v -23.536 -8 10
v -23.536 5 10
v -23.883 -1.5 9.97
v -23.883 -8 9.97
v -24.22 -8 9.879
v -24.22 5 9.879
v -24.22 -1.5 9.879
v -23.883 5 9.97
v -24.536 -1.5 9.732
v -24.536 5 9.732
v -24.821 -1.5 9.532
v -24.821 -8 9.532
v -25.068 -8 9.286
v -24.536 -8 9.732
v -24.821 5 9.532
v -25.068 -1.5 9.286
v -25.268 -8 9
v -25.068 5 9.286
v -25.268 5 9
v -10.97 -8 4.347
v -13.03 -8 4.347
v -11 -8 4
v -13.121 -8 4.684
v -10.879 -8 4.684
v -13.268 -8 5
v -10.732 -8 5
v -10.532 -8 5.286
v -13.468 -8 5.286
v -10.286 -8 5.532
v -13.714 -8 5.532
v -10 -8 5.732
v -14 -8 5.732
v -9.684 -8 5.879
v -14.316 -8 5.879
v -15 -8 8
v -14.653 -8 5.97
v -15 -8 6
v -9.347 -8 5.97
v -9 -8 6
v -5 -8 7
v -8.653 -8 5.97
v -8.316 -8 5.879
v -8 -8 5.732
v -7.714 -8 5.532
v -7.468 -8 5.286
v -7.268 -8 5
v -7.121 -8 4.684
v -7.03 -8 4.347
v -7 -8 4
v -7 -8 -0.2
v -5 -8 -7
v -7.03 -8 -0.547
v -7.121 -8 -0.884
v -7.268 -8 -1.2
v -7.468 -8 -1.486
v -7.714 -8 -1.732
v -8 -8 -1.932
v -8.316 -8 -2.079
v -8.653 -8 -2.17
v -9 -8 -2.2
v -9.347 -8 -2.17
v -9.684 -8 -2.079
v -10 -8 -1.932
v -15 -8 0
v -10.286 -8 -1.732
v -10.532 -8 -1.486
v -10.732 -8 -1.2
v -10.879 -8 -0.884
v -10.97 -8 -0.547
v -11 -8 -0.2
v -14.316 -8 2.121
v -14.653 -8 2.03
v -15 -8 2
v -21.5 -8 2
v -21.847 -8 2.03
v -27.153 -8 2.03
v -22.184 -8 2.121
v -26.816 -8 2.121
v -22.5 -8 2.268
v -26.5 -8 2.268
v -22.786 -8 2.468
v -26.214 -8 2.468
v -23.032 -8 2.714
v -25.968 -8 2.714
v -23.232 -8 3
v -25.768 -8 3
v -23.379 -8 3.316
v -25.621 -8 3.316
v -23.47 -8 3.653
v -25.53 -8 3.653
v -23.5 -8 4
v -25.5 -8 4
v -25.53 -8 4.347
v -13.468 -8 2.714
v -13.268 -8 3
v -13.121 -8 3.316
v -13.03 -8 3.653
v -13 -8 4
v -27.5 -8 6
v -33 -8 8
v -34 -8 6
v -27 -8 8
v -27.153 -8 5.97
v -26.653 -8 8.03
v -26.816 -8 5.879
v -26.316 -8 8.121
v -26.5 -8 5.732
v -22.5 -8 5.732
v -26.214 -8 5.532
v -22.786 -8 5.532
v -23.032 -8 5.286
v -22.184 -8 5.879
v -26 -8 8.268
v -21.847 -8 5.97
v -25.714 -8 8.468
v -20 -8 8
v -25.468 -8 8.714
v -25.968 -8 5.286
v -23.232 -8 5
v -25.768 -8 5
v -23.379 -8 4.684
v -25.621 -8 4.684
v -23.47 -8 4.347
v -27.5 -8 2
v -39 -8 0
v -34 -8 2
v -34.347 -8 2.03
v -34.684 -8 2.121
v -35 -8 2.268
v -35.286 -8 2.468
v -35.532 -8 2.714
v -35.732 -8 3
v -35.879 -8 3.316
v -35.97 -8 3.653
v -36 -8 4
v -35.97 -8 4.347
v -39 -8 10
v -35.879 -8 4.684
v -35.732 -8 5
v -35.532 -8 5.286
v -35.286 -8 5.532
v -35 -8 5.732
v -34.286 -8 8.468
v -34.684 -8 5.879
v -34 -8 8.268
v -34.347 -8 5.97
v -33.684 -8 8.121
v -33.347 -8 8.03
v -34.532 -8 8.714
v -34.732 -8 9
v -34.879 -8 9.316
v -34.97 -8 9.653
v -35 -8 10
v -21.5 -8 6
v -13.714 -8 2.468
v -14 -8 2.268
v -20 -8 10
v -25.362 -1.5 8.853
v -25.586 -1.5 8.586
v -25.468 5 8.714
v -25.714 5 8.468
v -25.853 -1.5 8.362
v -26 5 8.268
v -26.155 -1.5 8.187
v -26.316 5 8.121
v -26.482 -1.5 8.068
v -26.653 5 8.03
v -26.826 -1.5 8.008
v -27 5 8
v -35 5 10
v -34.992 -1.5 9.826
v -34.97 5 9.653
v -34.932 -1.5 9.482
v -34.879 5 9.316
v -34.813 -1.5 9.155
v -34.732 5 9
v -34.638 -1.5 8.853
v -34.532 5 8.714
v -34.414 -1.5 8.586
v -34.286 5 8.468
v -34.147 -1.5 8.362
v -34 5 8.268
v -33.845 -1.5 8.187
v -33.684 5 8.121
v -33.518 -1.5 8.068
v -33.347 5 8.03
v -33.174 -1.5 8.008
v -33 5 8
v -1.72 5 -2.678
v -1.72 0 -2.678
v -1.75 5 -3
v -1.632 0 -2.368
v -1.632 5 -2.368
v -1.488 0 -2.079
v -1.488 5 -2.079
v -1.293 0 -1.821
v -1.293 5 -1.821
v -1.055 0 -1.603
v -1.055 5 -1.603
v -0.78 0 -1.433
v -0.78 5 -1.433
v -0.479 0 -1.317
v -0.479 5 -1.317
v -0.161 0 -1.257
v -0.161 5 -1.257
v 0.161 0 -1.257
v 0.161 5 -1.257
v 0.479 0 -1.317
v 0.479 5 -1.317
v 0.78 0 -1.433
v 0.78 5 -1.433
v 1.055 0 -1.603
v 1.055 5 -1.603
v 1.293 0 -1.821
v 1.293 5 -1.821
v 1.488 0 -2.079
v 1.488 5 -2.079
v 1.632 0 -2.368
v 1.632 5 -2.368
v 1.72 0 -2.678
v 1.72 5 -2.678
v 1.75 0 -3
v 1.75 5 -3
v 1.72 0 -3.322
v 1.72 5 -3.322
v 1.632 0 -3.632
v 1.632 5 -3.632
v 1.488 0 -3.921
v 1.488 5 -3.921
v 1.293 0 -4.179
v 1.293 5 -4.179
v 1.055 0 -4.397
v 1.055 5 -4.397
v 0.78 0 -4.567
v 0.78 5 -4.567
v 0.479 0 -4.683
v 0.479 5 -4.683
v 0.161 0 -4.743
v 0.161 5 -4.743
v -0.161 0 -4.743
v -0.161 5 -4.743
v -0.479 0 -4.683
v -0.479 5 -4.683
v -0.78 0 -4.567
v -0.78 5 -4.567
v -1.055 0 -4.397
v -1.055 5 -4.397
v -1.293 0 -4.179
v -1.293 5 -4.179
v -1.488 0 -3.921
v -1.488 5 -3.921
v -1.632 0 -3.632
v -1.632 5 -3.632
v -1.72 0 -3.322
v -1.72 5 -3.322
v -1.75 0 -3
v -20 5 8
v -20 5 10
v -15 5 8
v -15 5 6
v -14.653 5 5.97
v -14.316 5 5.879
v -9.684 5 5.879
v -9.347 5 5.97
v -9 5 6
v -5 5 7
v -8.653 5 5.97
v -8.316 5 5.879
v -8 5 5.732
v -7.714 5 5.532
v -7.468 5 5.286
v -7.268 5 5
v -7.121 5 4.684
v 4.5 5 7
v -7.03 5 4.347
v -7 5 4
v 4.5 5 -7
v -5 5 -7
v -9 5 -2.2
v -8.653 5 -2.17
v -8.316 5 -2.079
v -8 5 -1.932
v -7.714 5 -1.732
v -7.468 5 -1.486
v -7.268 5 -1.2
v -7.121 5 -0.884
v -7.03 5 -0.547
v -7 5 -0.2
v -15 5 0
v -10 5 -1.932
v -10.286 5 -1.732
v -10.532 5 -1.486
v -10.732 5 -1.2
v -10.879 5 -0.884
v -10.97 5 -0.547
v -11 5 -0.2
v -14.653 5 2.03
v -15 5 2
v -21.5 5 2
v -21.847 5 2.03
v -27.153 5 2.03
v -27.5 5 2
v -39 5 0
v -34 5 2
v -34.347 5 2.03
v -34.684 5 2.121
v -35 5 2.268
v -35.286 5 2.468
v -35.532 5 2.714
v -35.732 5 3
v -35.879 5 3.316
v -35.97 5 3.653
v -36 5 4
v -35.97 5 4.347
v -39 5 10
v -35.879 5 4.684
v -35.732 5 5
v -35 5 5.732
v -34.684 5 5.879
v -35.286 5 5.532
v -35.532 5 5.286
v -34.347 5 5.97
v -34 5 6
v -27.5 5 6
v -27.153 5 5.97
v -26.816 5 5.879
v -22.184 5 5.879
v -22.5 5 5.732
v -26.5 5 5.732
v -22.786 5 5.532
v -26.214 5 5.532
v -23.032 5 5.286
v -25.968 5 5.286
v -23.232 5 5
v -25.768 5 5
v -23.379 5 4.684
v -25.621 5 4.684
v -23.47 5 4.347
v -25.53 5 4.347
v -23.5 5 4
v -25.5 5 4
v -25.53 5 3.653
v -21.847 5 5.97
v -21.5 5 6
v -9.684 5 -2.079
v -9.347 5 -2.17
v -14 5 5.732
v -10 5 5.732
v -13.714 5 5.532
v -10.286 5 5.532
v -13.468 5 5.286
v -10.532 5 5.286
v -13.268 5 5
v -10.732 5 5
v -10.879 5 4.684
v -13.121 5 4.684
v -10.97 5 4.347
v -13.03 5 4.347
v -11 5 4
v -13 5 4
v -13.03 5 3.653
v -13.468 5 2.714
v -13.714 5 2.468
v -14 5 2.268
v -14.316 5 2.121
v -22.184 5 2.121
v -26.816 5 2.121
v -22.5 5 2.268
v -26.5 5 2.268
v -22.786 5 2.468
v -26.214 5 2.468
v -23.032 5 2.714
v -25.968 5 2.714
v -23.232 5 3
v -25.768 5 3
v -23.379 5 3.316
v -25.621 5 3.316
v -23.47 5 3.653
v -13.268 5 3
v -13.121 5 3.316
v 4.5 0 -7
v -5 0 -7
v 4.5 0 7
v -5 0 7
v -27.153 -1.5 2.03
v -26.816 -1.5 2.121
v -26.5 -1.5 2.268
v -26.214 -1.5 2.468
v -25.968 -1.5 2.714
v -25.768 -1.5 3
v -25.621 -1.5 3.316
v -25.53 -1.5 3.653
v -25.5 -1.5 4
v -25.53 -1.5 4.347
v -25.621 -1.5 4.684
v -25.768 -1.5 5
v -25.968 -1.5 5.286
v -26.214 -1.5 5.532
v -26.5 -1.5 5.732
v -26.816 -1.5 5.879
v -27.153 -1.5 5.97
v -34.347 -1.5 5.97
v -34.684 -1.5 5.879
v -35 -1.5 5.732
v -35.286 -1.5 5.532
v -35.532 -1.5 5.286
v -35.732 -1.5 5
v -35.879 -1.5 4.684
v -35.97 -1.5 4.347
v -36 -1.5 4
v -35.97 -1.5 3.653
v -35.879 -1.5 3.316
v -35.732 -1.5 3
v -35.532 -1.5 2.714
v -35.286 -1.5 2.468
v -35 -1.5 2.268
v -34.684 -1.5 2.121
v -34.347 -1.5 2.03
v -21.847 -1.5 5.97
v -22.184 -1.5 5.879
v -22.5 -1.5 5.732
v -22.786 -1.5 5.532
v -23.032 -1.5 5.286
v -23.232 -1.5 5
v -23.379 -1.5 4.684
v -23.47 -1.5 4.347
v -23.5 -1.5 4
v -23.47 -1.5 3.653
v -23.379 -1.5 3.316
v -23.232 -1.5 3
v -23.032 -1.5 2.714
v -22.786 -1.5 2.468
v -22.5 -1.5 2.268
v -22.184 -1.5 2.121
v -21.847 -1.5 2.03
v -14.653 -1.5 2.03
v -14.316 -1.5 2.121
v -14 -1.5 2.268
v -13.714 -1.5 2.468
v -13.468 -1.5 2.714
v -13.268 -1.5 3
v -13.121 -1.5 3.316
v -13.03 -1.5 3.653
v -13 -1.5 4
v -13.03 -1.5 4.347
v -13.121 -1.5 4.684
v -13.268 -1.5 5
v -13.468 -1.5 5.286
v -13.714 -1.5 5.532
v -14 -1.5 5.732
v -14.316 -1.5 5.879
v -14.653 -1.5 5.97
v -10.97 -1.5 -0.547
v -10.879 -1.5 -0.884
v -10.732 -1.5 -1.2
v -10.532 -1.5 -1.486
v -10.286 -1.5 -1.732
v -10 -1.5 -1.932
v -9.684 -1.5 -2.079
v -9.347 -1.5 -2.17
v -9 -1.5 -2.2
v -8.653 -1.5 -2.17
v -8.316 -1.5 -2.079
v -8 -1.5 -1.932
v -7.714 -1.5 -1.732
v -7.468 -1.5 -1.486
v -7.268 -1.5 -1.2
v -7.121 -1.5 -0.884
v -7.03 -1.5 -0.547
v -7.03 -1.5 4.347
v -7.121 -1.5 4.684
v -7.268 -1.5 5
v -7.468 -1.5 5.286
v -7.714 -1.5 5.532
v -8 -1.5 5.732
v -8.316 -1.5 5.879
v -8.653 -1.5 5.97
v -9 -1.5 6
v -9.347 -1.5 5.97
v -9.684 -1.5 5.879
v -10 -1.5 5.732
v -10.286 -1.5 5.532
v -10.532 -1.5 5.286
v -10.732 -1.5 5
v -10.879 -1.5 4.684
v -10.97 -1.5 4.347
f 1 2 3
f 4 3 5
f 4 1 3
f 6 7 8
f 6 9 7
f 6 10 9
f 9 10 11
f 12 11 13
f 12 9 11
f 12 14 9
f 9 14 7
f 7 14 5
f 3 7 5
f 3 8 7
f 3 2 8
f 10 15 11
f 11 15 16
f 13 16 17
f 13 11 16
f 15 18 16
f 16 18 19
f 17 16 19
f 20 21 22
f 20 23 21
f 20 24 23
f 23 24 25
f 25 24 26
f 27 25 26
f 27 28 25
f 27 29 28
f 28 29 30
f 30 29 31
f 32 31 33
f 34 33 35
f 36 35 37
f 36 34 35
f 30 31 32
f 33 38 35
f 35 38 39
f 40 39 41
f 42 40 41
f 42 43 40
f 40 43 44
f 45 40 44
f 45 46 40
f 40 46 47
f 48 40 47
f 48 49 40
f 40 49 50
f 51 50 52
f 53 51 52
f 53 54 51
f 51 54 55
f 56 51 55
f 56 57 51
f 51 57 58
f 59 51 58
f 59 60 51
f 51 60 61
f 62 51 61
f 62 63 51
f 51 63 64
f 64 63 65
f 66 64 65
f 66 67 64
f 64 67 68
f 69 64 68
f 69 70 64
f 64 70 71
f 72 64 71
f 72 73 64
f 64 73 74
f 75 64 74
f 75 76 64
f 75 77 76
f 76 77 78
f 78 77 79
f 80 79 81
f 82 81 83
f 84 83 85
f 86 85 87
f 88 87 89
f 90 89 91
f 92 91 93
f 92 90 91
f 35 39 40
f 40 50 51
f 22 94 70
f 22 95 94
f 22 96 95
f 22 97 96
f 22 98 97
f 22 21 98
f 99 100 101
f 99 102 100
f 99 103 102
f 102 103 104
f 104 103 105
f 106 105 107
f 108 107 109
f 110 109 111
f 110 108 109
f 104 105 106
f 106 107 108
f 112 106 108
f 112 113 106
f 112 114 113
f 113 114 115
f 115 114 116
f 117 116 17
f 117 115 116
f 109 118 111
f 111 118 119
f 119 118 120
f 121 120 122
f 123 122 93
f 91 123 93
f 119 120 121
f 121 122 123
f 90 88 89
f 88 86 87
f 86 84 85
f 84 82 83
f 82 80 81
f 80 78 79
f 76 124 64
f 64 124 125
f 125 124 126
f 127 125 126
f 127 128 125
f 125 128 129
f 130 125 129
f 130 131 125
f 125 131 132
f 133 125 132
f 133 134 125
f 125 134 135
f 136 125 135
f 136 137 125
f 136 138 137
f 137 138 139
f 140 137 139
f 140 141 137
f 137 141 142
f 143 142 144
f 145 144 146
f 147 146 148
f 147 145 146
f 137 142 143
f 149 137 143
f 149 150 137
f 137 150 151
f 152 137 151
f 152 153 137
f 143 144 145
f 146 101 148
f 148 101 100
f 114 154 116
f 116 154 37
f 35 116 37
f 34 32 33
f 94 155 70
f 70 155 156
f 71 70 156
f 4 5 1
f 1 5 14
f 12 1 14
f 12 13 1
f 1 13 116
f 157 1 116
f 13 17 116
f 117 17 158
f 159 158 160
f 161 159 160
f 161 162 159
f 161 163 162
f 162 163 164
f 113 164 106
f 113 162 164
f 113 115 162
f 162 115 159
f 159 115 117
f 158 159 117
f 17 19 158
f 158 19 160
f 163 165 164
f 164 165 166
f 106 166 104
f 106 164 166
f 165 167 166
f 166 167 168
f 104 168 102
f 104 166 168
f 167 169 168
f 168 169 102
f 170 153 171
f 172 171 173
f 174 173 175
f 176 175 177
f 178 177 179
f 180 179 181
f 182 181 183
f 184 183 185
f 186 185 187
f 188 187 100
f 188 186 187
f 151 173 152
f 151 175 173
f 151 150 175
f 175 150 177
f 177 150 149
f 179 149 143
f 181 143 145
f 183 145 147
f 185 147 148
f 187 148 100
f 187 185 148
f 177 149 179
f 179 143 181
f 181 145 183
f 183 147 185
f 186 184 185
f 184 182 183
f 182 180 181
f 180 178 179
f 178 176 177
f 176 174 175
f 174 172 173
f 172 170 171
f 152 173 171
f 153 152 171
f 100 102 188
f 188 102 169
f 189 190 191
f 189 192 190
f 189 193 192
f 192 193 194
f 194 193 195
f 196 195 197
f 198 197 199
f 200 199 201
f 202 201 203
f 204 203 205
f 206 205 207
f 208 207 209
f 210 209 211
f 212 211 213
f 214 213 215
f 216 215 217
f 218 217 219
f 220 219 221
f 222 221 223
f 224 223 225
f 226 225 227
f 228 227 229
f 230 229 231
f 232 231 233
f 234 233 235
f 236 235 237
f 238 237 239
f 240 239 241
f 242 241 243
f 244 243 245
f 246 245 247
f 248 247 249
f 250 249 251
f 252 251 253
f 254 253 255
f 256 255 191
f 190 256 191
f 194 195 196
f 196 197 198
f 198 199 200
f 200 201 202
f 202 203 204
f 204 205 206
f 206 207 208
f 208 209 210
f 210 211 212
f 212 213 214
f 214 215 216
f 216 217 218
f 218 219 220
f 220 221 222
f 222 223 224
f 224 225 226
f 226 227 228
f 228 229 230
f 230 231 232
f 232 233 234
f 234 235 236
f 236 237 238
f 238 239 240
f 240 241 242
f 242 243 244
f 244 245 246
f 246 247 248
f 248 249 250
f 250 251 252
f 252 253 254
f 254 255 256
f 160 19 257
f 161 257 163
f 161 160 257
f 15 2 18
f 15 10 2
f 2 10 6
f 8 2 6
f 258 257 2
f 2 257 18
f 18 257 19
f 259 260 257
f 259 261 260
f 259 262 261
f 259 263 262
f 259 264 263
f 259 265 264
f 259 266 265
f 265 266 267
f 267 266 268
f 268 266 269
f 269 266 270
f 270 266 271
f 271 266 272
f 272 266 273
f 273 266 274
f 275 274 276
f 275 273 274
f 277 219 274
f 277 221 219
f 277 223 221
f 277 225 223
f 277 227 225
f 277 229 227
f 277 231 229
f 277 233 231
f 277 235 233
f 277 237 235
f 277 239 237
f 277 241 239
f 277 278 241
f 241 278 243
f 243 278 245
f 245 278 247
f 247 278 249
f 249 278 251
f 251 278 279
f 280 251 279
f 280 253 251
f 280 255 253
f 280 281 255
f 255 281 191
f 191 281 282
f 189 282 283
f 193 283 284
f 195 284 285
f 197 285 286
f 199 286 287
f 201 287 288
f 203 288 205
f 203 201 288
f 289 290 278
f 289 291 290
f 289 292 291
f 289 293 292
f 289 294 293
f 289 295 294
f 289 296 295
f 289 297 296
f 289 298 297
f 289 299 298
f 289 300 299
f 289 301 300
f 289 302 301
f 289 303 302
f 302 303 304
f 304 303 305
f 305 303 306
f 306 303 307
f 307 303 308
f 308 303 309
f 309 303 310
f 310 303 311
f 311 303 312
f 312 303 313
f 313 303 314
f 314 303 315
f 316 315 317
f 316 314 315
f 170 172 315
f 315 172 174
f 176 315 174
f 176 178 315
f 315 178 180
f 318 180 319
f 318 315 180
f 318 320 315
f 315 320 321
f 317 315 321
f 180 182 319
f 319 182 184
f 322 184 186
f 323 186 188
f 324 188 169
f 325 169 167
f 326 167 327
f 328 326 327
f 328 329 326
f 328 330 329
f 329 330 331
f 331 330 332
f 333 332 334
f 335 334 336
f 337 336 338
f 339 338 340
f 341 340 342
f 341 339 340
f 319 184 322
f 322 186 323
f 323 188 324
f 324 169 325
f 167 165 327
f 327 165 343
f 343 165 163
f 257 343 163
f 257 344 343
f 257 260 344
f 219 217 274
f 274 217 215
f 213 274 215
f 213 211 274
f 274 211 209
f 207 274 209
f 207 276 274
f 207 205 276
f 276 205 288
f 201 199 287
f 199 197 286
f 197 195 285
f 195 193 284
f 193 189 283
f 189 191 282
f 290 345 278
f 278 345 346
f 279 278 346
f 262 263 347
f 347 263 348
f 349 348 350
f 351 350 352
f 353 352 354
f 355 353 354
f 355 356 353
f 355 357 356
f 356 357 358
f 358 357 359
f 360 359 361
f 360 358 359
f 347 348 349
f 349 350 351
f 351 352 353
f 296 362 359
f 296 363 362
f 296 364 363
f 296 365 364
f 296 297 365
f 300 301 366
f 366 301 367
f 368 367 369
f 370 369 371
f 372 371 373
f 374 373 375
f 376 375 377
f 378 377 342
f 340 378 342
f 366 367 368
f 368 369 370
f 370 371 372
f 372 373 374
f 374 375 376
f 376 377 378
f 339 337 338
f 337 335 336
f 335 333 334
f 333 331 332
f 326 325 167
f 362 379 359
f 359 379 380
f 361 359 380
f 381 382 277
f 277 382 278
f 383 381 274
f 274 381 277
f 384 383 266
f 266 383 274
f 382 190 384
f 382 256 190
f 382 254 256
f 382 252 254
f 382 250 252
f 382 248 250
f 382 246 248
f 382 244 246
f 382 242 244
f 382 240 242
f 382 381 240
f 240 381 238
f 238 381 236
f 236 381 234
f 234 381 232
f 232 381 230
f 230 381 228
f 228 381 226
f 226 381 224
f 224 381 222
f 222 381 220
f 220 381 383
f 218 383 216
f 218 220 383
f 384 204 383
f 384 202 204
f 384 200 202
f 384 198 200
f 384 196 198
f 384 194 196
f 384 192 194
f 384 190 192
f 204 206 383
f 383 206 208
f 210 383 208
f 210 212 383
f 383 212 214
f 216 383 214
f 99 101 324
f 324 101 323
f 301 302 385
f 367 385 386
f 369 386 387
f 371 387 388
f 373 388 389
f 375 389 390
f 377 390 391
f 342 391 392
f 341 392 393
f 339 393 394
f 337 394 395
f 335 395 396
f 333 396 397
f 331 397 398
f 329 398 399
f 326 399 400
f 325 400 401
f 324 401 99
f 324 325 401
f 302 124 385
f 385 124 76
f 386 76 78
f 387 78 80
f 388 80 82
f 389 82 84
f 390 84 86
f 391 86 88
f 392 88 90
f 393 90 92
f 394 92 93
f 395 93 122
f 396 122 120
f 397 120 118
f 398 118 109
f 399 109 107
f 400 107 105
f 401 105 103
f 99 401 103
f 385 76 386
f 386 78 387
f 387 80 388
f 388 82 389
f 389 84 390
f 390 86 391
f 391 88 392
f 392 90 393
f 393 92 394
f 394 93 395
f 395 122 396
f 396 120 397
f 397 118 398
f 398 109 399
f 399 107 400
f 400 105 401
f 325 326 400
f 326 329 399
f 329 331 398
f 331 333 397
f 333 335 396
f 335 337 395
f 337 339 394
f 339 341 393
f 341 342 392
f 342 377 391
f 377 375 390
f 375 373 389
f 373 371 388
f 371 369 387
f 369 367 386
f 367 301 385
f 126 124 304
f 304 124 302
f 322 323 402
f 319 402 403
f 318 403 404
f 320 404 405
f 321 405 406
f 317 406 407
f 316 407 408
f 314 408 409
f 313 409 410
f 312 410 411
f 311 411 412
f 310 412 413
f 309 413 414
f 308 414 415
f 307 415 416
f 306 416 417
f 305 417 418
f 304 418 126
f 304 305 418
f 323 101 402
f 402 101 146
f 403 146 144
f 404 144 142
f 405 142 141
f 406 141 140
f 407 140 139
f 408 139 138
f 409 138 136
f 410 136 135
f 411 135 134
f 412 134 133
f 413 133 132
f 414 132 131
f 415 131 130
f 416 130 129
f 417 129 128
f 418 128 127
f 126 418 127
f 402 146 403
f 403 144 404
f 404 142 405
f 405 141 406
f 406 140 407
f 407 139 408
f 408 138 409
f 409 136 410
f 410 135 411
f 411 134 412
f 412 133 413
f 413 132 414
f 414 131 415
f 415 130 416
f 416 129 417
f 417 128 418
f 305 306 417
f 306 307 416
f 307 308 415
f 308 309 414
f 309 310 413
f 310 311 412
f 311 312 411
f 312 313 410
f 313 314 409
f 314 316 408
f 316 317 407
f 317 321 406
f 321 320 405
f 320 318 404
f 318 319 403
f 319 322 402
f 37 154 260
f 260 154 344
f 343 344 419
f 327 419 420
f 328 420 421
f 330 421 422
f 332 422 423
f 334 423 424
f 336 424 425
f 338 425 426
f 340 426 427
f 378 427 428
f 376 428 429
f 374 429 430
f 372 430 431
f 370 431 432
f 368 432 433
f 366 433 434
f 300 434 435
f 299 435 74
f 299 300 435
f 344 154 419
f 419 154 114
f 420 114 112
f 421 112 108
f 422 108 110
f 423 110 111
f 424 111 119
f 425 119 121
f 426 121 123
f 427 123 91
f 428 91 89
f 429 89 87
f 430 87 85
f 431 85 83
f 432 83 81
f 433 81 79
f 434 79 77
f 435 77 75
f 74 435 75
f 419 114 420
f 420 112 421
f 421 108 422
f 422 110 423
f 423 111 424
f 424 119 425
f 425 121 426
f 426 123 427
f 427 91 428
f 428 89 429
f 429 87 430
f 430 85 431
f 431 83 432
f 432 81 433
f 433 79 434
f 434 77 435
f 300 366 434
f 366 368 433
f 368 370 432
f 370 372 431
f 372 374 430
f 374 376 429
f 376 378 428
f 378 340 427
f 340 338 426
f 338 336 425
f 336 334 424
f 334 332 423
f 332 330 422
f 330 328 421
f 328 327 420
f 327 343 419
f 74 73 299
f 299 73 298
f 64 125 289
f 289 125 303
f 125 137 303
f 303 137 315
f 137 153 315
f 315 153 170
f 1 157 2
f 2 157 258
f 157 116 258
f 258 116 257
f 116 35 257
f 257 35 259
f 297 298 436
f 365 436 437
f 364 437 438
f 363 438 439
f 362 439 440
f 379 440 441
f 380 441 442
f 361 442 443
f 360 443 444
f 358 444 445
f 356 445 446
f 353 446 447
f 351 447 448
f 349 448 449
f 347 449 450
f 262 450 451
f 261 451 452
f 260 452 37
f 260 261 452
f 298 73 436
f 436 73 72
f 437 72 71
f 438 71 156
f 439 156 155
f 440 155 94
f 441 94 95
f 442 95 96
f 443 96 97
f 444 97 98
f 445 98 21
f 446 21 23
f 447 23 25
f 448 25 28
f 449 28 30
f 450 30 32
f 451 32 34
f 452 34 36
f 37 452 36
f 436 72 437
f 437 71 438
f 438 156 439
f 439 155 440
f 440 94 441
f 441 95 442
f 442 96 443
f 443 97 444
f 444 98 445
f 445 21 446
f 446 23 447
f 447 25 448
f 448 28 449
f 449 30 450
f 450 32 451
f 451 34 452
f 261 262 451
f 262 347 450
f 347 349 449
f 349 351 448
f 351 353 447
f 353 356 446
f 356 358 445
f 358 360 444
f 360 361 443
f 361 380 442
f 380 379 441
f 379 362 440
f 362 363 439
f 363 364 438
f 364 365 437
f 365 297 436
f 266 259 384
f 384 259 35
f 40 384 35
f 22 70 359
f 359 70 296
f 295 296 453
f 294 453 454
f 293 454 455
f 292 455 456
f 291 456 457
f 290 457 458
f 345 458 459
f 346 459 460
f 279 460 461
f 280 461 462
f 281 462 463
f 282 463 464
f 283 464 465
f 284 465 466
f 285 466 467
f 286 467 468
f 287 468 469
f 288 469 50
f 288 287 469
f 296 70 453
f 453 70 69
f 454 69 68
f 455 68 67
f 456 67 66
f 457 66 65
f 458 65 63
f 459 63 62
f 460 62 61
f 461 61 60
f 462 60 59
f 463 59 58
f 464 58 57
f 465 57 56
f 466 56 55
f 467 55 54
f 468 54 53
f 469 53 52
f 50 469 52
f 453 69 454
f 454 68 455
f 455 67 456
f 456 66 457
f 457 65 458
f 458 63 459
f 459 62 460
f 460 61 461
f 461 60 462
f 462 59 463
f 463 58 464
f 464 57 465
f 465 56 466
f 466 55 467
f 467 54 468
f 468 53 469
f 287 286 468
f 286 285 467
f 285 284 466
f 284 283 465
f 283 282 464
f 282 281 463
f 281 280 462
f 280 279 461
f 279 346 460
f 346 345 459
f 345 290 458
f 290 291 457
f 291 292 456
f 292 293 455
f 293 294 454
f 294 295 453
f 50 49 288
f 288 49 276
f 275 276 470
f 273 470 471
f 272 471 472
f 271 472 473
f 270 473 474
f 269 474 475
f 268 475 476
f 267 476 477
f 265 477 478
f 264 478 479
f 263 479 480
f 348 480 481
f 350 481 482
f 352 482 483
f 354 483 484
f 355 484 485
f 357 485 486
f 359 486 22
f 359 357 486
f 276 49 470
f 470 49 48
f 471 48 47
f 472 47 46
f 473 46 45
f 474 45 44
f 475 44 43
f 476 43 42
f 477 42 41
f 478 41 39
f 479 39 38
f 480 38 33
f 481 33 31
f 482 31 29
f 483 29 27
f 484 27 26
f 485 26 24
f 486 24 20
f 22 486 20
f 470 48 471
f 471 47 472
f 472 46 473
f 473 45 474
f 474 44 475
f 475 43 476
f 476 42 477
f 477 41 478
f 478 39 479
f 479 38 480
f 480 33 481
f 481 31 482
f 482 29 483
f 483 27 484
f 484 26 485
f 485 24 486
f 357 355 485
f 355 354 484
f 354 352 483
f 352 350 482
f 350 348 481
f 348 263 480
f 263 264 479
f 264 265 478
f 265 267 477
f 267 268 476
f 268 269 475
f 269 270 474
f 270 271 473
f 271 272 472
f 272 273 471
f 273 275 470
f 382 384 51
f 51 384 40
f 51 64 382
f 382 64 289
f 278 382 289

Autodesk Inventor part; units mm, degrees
ref_plane "YZ Plane" through (0, 0, 0) normal (1, 0, 0) x (0, 1, 0)
ref_plane "XZ Plane" through (0, 0, 0) normal (0, 1, 0) x (-1, 0, 0)
ref_plane "XY Plane" through (0, 0, 0) normal (0, 0, 1) x (1, 0, 0)
sketch "Sketch1" plane through (0, 0, 0) normal (0, 1, 0) x (-1, 0, 0)
  line L0 (15, 0) -> (15, 8)
  line L1 (15, 8) -> (20, 8)
  line L2 (20, 8) -> (20, 10)
  line L3 (20, 10) -> (25, 10)
  line L4 (25, 10) -> (25, 8)
  line L5 (25, 8) -> (35, 8)
  line L6 (35, 8) -> (35, 10)
  line L7 (35, 10) -> (39, 10)
  line L8 (39, 10) -> (39, 0)
  line L9 (39, 0) -> (15, 0)
  line L10 (15, 4) -> (39, 4)
  line L11 (39, 4) -> (34, 4)
  arc A0 (34, 2) -> (34, 6) centre (34, 4) ccw
  arc A1 (15, 6) -> (15, 2) centre (15, 4) ccw
  line L12 (34, 4) -> (15, 4)
  line L13 (24.5, 4) -> (27.5, 4)
  line L14 (24.5, 4) -> (21.5, 4)
  arc A2 (27.5, 6) -> (27.5, 2) centre (27.5, 4) ccw
  arc A3 (21.5, 2) -> (21.5, 6) centre (21.5, 4) ccw
  line L15 (15, 2) -> (21.5, 2)
  line L16 (27.5, 2) -> (34, 2)
  line L17 (15, 6) -> (21.5, 6)
  line L18 (27.5, 6) -> (34, 6)
  line L19 (5, 7) -> (15, 8)
  line L20 (5, 7) -> (-4.5, 7)
  line L21 (-4.5, 7) -> (-4.5, -3)
  line L22 (-4.5, -3) -> (0, -3)
  circle A4 centre (0, -3) radius 1.75
  line L23 (-4.5, -3) -> (-4.5, -7)
  line L24 (-4.5, -7) -> (5, -7)
  line L25 (5, -7) -> (5, 7)
  line L26 (5, -7) -> (15, 0)
  line L27 (5, 7) -> (9, 7)
  line L28 (9, 7) -> (9, 4)
  line L29 (9, -4.2) -> (9, -0.2)
  arc A5 (11, 4) -> (7, 4) centre (9, 4) ccw
  arc A6 (7, -0.2) -> (11, -0.2) centre (9, -0.2) ccw
  line L30 (7, 4) -> (7, -0.2)
  line L31 (11, -0.2) -> (11, 4)
  line L32 (9, 7) -> (9, 6)
  line L33 (9, -2.2) -> (9, -4.2)
  dimension "d6" = 8
  dimension "d7" = 5
  dimension "d8" = 2
  dimension "d9" = 5
  dimension "d10" = 2
  dimension "d11" = 10
  dimension "d12" = 2
  dimension "d13" = 4
  dimension "d15" = 5
  dimension "d16" = 4
  dimension "d17" = 4
  dimension "d18" = 3
  dimension "d19" = 3
  dimension "d20" = 4
  dimension "d21" = 4
  dimension "d36" = 10
  dimension "d37" = 4.5
  dimension "d38" = 3.5
  dimension "d39" = 4
  dimension "d40" = 4
  dimension "d41" = 3
  dimension "d42" = 4
  dimension "d43" = 4
  dimension "d44" = 4
extrude "Extrusion3" add sketch "Sketch1" against normal blind 8 contours L26 L29 A6 L31 A5 L28 L27 L19 L0 A1 | L0 L15 A3 L10 A2 L16 A0 L8 L9 | L26 L25 L27 L28 A5 L30 A6 L29 | L0 L1 L2 L3 L4 L5 L6 L7 L8 L10 A0 L18 A2 A3 L17
extrude "Extrusion4" add sketch "Sketch1" along normal blind 5 contours L26 L29 A6 L31 A5 L28 L27 L19 L0 A1 | L0 L15 A3 L10 A2 L16 A0 L8 L9 | L26 L25 L27 L28 A5 L30 A6 L29 | L0 L1 L2 L3 L4 L5 L6 L7 L8 L10 A0 L18 A2 A3 L17 | L24 L23 L21 L20 L25
fillet "Fillet2" radius 2 3 edges at (-25, -1.5, 8) (-25, -1.5, 10) (-35, -1.5, 8)
properties part number "servo_clip_header"
